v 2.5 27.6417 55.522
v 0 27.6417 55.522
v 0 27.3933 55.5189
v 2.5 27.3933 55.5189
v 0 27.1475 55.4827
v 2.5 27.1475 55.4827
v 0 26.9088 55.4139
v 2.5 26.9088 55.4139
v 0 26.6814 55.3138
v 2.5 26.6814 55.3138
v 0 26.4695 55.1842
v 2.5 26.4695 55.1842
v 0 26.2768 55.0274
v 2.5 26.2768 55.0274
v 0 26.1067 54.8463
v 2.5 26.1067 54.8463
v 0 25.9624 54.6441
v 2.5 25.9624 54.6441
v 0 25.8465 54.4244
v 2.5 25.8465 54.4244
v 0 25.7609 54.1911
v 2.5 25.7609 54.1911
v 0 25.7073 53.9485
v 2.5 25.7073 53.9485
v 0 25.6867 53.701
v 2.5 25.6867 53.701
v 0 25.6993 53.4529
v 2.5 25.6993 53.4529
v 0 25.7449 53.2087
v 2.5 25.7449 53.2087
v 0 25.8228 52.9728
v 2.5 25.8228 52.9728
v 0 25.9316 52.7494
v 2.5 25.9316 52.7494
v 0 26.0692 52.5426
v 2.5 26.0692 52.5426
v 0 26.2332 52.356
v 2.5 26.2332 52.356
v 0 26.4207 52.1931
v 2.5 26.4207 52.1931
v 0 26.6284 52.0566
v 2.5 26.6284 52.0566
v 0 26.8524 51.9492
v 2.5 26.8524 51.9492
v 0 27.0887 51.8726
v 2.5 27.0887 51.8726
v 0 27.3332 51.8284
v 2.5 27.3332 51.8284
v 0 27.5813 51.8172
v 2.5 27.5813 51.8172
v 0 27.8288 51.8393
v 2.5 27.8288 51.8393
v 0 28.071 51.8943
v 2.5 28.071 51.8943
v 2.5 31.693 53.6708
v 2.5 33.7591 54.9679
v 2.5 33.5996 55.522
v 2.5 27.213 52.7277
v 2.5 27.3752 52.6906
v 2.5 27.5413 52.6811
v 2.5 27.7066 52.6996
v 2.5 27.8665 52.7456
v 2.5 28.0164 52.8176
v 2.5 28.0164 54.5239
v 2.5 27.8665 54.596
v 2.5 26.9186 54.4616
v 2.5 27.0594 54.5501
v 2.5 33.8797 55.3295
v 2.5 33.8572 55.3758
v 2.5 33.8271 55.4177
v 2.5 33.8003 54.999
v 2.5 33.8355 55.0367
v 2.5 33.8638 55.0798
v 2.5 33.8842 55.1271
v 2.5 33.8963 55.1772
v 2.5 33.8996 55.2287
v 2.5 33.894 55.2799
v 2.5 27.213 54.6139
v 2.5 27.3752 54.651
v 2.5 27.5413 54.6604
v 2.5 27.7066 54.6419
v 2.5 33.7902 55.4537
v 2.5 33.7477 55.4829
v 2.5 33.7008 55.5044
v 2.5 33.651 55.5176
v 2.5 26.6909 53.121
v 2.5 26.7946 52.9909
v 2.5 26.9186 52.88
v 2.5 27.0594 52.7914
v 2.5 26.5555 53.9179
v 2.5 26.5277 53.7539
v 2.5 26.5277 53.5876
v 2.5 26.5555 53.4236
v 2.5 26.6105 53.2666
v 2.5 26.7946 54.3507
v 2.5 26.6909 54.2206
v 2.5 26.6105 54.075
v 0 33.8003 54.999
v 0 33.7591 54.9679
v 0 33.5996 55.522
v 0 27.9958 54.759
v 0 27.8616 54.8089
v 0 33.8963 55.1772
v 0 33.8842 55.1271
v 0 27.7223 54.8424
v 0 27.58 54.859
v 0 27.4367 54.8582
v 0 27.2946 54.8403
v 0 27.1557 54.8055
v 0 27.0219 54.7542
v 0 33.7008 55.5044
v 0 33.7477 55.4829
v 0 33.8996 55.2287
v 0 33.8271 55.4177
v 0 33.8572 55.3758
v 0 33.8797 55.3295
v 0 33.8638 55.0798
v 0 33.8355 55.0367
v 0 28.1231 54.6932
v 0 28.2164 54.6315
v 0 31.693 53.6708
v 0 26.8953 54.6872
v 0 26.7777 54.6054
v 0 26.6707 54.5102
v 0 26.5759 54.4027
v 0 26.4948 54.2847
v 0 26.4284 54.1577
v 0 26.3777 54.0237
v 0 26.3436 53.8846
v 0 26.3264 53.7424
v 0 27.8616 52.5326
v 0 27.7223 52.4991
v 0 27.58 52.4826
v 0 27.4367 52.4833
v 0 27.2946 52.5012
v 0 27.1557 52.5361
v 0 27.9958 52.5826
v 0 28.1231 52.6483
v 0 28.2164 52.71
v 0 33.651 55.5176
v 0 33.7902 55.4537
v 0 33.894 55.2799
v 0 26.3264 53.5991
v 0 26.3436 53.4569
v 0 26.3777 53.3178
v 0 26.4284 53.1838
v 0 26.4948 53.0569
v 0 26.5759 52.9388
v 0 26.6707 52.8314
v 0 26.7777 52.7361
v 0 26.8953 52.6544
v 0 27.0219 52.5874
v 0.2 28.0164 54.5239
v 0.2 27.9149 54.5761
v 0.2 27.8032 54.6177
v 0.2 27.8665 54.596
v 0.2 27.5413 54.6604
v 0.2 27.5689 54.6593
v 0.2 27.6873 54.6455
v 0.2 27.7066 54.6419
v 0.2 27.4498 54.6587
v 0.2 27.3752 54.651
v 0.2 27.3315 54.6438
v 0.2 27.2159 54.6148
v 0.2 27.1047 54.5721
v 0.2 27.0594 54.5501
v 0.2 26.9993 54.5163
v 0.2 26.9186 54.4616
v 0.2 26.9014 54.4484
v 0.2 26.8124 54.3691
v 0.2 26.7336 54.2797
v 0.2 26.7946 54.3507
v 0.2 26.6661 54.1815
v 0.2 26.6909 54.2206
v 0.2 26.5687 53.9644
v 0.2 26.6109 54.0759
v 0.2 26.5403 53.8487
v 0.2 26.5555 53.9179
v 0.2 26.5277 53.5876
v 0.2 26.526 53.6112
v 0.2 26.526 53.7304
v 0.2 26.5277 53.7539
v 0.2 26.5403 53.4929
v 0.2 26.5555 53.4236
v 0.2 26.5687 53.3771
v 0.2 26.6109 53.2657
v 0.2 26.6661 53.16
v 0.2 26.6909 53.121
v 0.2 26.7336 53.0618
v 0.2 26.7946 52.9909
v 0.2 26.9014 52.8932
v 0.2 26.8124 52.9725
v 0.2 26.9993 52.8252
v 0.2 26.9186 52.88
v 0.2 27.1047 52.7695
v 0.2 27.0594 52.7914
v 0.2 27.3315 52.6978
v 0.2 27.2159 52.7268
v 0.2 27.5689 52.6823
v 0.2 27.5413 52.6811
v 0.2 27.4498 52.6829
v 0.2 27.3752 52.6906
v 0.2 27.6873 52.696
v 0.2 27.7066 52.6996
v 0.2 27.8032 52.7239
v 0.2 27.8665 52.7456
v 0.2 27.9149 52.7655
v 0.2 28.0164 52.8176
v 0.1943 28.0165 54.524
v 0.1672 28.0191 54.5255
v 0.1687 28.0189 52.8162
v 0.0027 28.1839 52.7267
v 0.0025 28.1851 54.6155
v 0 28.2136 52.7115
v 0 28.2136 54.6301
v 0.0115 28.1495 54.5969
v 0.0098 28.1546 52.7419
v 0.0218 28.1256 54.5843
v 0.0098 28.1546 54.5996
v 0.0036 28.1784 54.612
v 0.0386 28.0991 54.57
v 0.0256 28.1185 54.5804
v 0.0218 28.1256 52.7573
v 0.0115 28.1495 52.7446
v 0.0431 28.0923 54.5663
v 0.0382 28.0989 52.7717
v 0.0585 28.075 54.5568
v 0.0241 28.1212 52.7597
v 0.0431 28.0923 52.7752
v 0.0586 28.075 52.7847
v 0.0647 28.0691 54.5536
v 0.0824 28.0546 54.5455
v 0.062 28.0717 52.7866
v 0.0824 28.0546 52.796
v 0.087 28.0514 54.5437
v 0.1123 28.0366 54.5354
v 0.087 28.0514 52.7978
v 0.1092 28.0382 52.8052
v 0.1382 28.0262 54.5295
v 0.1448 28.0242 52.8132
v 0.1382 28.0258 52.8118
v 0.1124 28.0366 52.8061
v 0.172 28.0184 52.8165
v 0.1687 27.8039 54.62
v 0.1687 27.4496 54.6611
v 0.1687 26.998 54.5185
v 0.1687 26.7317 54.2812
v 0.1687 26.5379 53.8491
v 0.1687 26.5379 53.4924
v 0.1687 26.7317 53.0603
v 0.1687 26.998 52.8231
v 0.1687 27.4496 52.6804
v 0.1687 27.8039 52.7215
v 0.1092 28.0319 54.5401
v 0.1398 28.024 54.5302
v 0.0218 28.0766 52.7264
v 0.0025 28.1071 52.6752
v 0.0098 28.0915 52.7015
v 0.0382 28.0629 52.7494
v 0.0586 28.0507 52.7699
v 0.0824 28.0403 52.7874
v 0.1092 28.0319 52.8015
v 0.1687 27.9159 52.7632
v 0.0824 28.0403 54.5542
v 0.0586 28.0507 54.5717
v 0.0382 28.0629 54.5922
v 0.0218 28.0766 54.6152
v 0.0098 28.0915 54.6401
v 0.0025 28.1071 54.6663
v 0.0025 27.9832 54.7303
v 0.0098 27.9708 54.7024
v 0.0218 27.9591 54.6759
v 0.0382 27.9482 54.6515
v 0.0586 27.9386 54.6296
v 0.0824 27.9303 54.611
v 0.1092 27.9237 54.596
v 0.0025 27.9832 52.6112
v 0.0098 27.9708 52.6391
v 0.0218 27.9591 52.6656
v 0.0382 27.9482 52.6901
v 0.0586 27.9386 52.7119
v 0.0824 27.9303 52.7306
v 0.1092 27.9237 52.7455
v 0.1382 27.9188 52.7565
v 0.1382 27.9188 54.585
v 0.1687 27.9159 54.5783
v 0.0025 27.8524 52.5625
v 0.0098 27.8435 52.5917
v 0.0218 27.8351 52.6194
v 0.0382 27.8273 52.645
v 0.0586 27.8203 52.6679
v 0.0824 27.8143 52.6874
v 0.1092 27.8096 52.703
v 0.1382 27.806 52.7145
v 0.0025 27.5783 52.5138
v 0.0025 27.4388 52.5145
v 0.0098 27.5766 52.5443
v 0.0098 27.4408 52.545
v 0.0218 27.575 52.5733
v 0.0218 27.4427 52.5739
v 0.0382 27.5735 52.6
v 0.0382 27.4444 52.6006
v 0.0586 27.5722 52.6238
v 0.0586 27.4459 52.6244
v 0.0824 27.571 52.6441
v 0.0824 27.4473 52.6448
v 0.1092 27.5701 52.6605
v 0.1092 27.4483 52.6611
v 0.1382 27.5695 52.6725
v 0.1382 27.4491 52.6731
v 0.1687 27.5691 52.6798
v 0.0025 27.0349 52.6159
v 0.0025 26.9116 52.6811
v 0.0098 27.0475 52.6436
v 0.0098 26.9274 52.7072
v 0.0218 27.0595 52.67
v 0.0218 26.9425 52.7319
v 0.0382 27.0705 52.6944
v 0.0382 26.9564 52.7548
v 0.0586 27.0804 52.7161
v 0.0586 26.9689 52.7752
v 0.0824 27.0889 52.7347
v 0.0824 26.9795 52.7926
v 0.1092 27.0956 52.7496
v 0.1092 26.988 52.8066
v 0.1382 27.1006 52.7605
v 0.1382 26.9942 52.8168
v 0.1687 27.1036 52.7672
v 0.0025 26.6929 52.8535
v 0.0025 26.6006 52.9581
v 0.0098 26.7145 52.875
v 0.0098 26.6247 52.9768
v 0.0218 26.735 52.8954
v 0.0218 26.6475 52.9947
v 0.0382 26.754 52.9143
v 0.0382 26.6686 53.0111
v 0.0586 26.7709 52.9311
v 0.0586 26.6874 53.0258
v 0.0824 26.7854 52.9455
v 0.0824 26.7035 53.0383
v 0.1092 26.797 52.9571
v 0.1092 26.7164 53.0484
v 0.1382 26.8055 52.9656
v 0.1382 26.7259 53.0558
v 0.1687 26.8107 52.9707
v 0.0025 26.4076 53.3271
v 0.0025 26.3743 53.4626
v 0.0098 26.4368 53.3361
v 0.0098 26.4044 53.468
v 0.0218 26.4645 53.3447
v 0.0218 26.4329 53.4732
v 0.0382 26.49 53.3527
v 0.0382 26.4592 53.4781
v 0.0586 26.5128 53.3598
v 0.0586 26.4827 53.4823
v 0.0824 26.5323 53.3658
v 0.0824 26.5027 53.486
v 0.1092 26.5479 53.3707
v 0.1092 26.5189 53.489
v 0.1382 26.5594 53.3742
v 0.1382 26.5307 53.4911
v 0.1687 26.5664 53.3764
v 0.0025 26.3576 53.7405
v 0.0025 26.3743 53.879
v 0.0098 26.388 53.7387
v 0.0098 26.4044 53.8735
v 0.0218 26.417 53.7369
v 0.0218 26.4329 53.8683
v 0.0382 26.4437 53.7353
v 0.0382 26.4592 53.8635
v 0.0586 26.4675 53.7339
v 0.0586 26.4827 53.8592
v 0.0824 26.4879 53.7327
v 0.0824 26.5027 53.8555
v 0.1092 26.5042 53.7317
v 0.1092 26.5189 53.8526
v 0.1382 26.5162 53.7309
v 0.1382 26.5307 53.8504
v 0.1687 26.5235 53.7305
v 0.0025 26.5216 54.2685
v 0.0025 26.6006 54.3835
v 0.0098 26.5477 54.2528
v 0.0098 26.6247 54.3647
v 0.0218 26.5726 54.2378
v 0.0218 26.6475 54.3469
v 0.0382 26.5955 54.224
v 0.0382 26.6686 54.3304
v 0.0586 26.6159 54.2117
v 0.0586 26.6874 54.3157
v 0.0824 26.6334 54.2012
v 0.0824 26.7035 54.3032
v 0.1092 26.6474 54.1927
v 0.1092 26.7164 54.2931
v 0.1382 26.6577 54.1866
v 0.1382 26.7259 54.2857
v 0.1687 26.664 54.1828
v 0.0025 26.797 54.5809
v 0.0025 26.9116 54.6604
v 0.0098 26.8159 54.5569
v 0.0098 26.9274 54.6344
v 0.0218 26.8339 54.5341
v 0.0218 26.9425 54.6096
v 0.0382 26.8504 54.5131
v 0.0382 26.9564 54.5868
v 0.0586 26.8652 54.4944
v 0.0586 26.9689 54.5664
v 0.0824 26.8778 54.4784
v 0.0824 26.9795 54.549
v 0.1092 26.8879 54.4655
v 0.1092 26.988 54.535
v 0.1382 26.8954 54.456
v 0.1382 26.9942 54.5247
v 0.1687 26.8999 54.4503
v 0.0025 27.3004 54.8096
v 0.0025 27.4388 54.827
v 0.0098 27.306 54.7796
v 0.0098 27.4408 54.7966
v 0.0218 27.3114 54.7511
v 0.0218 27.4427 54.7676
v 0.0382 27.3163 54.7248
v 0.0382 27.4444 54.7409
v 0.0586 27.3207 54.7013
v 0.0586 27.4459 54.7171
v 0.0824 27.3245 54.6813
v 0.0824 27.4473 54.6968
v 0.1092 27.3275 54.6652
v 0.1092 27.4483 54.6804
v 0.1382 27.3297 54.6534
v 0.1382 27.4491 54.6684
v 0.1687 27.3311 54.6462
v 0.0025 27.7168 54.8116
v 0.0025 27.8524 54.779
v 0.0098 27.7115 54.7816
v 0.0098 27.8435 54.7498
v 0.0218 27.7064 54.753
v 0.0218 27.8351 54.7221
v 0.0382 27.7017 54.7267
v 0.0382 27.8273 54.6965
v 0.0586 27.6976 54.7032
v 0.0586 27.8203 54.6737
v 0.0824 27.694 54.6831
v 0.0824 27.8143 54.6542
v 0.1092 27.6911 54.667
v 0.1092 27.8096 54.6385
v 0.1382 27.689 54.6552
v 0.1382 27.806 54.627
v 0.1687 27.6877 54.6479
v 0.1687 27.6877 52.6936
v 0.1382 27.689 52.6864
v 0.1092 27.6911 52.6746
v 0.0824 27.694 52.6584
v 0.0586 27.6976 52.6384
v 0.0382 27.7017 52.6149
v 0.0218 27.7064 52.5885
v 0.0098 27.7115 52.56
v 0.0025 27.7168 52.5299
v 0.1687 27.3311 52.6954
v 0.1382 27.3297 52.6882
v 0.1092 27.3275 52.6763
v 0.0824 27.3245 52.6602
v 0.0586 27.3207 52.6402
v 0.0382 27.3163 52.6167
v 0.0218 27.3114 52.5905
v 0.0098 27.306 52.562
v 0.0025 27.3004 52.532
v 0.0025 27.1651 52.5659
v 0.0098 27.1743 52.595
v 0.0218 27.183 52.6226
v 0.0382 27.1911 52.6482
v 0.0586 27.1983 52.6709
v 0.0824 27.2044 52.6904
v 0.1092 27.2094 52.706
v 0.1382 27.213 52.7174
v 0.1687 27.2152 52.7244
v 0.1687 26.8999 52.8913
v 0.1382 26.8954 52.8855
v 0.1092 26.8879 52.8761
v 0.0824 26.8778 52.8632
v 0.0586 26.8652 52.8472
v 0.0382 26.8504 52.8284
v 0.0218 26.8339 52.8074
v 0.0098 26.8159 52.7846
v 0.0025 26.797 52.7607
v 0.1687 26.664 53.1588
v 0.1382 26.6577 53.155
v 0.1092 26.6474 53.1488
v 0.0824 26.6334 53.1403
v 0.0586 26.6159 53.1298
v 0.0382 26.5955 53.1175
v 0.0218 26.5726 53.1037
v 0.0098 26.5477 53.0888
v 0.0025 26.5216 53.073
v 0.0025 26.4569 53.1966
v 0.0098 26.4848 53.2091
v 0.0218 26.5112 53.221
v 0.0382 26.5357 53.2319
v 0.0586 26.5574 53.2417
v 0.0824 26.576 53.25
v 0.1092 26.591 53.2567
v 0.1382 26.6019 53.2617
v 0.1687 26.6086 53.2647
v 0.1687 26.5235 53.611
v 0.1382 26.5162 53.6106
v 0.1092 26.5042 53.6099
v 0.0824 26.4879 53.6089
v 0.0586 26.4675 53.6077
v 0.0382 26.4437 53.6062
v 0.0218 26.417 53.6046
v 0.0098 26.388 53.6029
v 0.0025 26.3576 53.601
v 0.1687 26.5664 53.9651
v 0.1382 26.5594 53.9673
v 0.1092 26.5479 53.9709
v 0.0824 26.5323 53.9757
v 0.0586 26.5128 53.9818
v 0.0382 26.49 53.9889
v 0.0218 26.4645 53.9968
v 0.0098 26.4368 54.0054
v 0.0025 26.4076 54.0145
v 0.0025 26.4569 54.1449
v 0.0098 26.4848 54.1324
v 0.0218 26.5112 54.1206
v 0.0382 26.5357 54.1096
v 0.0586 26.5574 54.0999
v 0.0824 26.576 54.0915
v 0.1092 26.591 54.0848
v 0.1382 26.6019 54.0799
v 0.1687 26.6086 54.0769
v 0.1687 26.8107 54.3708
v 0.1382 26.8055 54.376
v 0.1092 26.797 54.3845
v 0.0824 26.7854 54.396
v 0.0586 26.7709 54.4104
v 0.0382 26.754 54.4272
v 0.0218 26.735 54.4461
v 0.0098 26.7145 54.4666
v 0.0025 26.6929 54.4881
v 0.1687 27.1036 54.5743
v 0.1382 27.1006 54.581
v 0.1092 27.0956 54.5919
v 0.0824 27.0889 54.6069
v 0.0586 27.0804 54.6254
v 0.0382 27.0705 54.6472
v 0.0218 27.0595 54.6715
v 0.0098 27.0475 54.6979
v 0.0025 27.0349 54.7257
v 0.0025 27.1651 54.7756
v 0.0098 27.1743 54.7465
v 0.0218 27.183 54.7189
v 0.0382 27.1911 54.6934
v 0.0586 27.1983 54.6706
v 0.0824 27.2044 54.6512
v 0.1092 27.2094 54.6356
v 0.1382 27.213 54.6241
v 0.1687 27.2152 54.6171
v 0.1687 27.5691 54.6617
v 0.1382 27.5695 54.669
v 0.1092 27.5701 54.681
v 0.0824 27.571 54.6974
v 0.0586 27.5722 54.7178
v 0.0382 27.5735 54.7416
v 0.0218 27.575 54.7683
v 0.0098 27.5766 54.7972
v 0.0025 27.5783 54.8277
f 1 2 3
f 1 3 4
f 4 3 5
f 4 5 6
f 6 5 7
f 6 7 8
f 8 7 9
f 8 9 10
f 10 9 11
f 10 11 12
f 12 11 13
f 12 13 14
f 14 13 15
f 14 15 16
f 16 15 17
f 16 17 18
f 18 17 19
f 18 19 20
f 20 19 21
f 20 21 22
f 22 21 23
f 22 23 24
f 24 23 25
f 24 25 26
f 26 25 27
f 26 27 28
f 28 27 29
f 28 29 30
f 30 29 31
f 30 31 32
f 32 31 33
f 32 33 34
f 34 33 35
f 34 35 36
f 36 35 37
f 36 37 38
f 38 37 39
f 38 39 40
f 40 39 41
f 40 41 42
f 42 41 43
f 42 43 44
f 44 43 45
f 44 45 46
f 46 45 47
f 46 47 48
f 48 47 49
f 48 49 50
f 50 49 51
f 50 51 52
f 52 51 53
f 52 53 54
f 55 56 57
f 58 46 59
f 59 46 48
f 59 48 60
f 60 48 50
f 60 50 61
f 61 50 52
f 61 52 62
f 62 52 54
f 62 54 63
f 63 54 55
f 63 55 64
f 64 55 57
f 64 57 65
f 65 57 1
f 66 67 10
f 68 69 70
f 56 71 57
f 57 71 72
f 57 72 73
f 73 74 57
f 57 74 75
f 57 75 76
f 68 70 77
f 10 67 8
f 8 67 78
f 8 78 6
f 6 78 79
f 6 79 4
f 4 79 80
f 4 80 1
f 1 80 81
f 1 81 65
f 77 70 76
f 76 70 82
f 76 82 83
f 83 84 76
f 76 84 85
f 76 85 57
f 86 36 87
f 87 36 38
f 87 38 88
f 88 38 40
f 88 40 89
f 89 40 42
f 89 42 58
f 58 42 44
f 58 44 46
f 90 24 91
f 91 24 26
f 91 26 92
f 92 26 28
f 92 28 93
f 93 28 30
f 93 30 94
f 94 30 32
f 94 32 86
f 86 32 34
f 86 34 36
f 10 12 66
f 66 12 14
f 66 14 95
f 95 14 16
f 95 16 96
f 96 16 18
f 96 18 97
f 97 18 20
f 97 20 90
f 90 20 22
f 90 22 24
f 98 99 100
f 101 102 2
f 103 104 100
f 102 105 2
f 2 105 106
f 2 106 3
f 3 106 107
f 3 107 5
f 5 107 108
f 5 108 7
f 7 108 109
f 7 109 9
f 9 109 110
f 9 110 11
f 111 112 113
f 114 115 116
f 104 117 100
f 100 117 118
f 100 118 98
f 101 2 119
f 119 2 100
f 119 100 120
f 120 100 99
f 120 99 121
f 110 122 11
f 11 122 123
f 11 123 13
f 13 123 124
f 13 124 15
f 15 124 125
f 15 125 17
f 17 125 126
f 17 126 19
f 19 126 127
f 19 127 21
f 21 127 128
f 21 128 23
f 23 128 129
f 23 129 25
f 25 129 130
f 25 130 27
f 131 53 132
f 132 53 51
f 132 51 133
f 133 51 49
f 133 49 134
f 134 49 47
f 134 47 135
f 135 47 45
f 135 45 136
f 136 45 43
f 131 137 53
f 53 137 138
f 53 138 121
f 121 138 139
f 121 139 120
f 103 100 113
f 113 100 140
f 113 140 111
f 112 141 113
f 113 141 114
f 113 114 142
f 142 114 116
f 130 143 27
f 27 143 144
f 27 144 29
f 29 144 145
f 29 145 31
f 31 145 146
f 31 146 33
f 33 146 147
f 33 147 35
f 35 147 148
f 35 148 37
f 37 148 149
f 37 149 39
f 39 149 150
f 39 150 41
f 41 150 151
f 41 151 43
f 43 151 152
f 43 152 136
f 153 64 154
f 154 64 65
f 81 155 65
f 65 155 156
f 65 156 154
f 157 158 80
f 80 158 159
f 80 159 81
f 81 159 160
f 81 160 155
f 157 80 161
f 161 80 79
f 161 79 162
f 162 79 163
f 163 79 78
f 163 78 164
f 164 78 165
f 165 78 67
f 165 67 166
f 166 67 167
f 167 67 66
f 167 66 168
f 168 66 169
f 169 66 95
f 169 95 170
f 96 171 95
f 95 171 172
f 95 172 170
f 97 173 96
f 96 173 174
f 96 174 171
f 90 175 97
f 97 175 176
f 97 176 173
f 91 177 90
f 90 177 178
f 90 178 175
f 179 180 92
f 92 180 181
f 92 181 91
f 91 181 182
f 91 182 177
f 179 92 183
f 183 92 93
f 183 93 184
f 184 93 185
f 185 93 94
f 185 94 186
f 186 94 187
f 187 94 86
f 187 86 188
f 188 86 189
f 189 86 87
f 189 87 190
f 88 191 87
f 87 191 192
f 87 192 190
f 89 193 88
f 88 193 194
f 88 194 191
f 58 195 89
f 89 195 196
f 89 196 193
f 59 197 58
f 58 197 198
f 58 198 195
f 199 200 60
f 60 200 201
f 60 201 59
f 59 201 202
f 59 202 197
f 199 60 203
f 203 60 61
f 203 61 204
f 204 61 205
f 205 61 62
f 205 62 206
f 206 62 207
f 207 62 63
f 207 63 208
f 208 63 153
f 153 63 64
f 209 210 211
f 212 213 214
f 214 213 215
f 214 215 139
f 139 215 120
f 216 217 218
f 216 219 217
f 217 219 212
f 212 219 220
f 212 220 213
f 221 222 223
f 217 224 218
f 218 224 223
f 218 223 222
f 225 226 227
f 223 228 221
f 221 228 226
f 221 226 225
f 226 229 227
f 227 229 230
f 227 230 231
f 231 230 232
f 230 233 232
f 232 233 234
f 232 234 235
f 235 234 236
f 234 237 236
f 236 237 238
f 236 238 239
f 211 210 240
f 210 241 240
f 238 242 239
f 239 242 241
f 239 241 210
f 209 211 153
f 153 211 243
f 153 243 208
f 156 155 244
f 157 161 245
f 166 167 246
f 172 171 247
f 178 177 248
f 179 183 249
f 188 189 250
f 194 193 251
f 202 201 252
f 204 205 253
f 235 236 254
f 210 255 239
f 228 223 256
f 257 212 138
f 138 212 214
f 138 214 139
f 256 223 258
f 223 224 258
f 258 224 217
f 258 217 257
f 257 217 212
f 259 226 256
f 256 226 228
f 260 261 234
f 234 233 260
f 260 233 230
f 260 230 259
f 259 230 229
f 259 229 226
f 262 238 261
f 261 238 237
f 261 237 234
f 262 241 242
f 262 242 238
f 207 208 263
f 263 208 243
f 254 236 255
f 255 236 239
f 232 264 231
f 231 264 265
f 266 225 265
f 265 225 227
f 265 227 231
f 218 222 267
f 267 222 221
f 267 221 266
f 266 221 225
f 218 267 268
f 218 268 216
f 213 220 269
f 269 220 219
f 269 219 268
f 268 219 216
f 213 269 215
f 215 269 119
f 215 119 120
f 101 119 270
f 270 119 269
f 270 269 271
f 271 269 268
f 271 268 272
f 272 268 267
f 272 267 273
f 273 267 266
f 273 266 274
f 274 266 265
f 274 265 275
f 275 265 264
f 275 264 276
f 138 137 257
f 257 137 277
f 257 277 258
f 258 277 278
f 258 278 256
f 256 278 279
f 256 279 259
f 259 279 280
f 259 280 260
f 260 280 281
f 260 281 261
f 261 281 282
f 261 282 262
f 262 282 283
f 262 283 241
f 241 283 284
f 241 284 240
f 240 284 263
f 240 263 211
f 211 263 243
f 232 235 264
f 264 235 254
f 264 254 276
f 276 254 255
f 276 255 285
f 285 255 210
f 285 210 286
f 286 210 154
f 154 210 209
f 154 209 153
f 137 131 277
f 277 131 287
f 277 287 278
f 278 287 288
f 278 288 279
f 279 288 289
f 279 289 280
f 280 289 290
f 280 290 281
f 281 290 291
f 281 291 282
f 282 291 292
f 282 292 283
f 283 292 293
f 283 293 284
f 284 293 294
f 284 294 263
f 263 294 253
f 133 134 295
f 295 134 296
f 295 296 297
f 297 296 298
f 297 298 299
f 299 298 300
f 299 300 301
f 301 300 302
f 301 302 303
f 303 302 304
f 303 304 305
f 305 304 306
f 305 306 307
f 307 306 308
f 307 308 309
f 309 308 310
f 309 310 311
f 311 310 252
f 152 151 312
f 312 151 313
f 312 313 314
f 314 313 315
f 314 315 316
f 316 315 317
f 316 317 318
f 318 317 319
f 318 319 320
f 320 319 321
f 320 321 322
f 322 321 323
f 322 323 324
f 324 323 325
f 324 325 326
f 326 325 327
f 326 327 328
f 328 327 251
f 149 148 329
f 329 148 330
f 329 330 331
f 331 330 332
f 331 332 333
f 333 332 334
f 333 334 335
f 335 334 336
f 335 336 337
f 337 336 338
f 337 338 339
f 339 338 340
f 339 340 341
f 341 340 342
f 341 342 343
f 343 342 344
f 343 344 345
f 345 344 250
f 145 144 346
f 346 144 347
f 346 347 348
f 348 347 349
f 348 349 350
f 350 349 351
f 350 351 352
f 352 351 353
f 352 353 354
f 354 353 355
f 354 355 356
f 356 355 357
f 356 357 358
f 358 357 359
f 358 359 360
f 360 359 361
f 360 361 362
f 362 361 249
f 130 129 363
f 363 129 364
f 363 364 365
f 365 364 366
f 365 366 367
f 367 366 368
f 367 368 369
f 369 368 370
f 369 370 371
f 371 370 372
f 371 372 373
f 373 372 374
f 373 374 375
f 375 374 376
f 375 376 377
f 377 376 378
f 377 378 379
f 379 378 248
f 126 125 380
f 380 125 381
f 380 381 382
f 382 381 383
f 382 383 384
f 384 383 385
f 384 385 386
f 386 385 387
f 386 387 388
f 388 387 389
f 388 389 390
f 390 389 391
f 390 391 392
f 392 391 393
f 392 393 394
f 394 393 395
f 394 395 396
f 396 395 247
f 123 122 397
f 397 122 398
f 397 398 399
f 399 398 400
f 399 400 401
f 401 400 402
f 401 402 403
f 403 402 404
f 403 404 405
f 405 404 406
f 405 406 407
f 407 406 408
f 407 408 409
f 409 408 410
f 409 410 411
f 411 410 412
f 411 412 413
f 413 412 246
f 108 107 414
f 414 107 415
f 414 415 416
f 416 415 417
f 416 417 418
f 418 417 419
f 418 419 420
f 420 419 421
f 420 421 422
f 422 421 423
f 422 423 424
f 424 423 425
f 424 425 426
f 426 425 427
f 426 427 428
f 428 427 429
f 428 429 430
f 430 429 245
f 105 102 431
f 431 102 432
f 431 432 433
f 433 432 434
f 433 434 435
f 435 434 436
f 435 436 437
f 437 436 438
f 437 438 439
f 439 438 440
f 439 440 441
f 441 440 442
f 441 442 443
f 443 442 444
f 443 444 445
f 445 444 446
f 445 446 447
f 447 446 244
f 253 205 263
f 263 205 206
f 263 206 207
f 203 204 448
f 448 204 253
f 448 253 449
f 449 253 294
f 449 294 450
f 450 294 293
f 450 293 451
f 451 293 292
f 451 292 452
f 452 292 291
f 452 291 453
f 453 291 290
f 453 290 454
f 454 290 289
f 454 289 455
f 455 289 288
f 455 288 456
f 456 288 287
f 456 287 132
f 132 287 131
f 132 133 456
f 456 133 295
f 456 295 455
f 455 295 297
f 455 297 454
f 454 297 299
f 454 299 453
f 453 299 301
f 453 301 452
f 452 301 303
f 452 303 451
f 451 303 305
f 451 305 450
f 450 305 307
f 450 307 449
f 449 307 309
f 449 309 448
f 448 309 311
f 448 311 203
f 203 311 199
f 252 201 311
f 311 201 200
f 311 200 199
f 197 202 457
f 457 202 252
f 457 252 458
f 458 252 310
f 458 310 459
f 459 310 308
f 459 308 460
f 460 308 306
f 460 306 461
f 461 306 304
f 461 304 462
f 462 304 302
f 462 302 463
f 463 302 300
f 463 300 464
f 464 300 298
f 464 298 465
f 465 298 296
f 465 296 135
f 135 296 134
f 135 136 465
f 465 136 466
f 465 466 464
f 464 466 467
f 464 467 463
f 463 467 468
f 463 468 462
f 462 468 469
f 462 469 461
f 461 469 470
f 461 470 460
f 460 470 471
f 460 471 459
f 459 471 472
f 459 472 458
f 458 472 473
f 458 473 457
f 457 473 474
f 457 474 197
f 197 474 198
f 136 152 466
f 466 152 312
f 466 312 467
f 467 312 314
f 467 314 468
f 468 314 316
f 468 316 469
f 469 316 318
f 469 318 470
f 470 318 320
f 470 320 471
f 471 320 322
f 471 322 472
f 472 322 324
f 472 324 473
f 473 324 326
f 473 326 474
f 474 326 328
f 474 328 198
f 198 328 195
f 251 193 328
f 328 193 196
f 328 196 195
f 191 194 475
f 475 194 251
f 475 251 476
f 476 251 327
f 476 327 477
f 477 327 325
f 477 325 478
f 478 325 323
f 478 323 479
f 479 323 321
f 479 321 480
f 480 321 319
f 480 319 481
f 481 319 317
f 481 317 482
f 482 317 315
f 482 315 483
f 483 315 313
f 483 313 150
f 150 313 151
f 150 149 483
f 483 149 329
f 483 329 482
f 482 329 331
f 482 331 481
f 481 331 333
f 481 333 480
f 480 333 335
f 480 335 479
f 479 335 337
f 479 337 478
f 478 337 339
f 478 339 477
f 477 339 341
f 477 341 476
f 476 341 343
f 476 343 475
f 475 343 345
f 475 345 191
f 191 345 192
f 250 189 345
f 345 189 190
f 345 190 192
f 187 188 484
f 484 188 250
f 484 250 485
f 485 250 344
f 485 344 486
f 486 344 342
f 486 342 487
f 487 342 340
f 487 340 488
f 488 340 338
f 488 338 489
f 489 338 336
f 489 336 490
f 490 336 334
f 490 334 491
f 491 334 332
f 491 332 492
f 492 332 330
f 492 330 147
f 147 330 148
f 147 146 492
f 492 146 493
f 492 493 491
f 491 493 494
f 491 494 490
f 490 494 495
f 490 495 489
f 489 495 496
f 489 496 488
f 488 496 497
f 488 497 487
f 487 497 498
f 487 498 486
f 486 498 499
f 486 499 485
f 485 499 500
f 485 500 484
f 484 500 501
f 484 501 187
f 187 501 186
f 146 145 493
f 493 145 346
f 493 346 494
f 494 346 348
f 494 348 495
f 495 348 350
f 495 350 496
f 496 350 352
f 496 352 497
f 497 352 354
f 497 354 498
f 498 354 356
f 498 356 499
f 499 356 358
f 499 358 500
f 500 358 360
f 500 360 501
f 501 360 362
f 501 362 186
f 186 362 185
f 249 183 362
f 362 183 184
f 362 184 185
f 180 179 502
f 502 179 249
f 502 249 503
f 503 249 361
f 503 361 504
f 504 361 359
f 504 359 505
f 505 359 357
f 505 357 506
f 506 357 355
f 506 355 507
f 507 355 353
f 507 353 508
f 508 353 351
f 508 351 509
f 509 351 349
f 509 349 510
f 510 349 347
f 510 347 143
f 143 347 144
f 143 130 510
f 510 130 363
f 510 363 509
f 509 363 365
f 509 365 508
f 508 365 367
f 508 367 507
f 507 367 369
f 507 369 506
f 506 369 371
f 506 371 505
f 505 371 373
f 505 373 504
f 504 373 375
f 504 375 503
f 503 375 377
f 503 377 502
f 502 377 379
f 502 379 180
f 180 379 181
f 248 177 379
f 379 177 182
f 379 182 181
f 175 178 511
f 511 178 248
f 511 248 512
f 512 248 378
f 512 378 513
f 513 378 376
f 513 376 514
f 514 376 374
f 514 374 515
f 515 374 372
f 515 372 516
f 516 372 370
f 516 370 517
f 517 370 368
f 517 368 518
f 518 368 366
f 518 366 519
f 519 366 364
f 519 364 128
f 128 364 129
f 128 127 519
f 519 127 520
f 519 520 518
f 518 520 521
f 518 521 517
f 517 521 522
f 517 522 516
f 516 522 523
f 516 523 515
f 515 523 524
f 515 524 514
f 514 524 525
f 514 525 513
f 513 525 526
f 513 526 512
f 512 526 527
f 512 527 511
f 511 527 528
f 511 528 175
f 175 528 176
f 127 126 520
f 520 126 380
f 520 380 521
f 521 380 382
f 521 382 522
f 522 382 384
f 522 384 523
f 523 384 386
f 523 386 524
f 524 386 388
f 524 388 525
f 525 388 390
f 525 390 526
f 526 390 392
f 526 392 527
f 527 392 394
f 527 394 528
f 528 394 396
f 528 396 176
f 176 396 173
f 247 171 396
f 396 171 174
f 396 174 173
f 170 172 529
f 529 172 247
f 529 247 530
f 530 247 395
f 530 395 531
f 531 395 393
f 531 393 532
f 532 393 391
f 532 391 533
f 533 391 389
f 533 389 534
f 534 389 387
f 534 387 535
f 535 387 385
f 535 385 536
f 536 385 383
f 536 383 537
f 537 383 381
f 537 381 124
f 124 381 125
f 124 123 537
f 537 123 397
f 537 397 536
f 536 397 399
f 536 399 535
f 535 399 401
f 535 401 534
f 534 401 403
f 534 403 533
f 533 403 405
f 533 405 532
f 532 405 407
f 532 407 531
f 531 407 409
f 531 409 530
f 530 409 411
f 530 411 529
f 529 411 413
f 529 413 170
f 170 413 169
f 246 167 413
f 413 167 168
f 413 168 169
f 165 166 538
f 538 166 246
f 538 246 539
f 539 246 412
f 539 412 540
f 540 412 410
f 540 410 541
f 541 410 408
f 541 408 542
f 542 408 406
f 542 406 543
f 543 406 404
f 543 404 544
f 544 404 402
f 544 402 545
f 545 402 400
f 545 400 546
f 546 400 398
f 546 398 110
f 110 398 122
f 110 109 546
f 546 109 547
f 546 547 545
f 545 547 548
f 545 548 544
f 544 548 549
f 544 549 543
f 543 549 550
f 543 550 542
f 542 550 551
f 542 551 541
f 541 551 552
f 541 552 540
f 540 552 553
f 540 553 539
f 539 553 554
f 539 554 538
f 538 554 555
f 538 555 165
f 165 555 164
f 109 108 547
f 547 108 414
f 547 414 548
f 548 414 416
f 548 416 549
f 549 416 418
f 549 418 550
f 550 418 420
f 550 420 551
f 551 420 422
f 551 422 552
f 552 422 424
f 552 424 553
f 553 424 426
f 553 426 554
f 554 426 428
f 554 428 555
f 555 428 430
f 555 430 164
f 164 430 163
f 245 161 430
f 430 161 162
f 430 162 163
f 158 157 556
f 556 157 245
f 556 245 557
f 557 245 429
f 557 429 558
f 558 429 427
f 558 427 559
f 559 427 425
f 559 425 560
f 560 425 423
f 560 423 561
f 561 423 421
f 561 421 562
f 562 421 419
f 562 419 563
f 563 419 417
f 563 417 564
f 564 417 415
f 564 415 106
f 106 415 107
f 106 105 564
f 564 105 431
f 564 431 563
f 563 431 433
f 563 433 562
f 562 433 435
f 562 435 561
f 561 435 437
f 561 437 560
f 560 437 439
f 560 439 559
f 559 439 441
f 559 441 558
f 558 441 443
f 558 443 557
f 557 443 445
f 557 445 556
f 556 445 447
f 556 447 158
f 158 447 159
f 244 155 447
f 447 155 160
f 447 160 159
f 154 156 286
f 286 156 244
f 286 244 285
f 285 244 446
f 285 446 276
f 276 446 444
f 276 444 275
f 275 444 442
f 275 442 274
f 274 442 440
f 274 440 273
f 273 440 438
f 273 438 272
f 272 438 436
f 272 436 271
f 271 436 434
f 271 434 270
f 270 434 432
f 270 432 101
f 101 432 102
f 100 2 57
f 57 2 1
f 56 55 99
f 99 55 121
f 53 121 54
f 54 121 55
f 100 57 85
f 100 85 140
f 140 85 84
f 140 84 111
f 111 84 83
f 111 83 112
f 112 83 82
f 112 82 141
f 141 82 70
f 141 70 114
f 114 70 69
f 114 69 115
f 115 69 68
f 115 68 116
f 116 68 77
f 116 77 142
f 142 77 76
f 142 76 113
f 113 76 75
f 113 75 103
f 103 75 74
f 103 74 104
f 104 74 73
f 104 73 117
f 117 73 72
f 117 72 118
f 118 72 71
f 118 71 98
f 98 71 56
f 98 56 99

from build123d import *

# Parameters (mm, degrees)
BOSS_EXTRUDE2_DEPTH = 2.5
SKETCH4_R           = 0.99
CUT_EXTRUDE2_DEPTH  = 64.981998238
SKETCH7_W           = 2.01987101
SKETCH7_H           = 0.78494751
BOSS_EXTRUDE5_DEPTH = 2.5
FILLET1_R           = 0.2
BOSS_EXTRUDE6_DEPTH = 2.5
CUT_EXTRUDE5_DEPTH  = 66.492743437
FILLET14_R          = 0.3


with BuildPart() as part:
    # Sketch3 → Boss-Extrude2 (new body)
    with BuildSketch(Plane(origin=(0, 0, 0), x_dir=(0, 0, -1), z_dir=(1, 0, 0))):
        with BuildLine():
            Line((-54.67077374, 30.968825597), (-55.447230875, 28.071048118))
            ThreePointArc((-55.447230875, 28.071048118), (-53.67077374, 25.686416202), (-51.894316605, 28.071048118))
            Line((-51.894316605, 28.071048118), (-52.67077374, 30.968825597))
            ThreePointArc((-52.67077374, 30.968825597), (-53.67077374, 31.692969852), (-54.67077374, 30.968825597))
        make_face()
    extrude(amount=BOSS_EXTRUDE2_DEPTH)

    # Sketch4 → Cut-Extrude2 (cut, through all)
    with BuildSketch(Plane(origin=(2.5, 0, 0), x_dir=(0, 0, -1), z_dir=(1, 0, 0))):
        with Locations((-53.67077374, 27.514195996)):
            Circle(SKETCH4_R)
    extrude(amount=-CUT_EXTRUDE2_DEPTH, mode=Mode.SUBTRACT)

    # Sketch7 → Boss-Extrude5 (add)
    with BuildSketch(Plane(origin=(2.5, 0, 0), x_dir=(0, 0, -1), z_dir=(1, 0, 0))):
        with Locations((-53.657499813, 28.408869671)):
            Rectangle(SKETCH7_W, SKETCH7_H)
    extrude(amount=-BOSS_EXTRUDE5_DEPTH)

    # Fillet1
    fillet1_edges = [part.edges().sort_by_distance(p)[0] for p in [
        (0, 26.524195996, 53.67077374),
        (0, 28.016395916, 53.67077374),
    ]]
    fillet(fillet1_edges, radius=FILLET1_R)

    # Sketch8 → Boss-Extrude6 (add)
    with BuildSketch(Plane(origin=(2.5, 0, 0), x_dir=(0, 0, -1), z_dir=(1, 0, 0))):
        Polygon((-55.522016872, 27.641704373), (-55.522016872, 34.641704373), (-53.67077374, 31.692969852), align=None)
    extrude(amount=-BOSS_EXTRUDE6_DEPTH)

    # Sketch12 → Cut-Extrude5 (cut, through all)
    with BuildSketch(Plane(origin=(2.5, 0, 0), x_dir=(0, 0, -1), z_dir=(1, 0, 0))):
        Polygon((-53.67077374, 31.692969852), (-51.894316605, 28.071048118), (-51.781619292, 31.692969852), align=None)
    extrude(amount=-CUT_EXTRUDE5_DEPTH, mode=Mode.SUBTRACT)

    # Fillet14
    fillet14_edges = [part.edges().sort_by_distance(p)[0] for p in [
        (1.25, 34.641704373, 55.522016872),
    ]]
    fillet(fillet14_edges, radius=FILLET14_R)


solid = part.part
